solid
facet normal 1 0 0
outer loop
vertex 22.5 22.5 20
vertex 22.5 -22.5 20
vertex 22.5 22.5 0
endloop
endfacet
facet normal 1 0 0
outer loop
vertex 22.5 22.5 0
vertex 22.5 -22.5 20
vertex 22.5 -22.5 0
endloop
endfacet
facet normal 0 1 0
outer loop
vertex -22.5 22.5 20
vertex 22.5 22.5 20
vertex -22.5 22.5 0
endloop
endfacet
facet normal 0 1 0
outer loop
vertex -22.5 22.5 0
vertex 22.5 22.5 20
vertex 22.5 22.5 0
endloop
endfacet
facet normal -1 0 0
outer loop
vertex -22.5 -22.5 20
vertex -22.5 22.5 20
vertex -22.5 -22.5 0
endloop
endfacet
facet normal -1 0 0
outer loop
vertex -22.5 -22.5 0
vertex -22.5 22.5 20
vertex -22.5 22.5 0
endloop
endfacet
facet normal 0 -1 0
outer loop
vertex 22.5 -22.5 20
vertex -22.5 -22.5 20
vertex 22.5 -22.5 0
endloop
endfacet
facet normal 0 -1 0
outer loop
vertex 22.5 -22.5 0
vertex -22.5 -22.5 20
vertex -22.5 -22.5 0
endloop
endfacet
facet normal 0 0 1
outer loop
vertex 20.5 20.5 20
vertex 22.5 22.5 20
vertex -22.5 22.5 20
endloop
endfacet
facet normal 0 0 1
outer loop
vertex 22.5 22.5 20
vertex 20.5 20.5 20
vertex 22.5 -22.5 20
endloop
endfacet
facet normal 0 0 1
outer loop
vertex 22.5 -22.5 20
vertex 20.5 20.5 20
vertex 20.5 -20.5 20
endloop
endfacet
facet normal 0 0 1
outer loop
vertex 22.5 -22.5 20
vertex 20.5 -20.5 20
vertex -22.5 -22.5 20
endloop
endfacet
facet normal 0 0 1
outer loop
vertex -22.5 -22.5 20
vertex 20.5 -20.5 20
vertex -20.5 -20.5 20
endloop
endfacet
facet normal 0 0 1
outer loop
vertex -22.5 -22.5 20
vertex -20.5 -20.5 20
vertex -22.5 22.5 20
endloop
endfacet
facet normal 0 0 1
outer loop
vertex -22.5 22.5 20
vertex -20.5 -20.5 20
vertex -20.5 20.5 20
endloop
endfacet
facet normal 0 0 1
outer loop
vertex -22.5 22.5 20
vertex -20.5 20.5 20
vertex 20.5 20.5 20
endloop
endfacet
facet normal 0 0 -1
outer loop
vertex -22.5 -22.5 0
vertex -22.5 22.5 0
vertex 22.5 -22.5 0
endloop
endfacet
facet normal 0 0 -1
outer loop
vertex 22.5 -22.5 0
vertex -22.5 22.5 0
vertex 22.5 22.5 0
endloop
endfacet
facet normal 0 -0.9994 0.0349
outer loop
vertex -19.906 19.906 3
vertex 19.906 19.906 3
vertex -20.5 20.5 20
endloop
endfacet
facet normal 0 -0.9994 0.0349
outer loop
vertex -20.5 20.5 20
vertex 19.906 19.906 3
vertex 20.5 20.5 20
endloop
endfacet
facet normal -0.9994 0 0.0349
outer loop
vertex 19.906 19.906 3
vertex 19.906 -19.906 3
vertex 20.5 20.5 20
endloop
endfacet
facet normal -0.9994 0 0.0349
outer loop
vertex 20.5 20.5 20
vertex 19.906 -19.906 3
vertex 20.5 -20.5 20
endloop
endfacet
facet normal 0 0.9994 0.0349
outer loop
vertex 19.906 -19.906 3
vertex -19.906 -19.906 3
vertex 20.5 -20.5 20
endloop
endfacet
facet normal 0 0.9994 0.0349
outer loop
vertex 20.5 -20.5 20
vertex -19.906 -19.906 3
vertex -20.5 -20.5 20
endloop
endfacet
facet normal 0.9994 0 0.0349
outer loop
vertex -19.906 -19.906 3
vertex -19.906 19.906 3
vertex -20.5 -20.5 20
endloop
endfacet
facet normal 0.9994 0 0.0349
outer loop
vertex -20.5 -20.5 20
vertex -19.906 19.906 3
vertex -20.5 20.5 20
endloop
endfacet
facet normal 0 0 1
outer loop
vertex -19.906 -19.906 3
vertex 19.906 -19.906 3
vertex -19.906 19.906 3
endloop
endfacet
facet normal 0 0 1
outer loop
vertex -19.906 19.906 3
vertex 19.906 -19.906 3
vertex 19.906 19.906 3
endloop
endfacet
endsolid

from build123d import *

# Parameters (mm, degrees)
SKETCH_1_W          = 45
SKETCH_1_H          = 45
EXTRUDE_1_DEPTH     = 20
SKETCH_2_W          = 41
SKETCH_2_H          = 41
CUT_EXTRUDE_1_DEPTH = 17
CUT_EXTRUDE_1_DRAFT = -2


with BuildPart() as part:
    # Эскиз1 → Бобышка-Вытянуть1 (new body)
    with BuildSketch(Plane.XY):
        Rectangle(SKETCH_1_W, SKETCH_1_H)
    extrude(amount=EXTRUDE_1_DEPTH)


with BuildPart() as cut_extrude_1_tool:
    # Эскиз2 → Вырез-Вытянуть1 (with draft: the straight prism first)
    with BuildSketch(Plane.XY.offset(20)):
        Rectangle(SKETCH_2_W, SKETCH_2_H)
    extrude(amount=-CUT_EXTRUDE_1_DEPTH)
    # Вырез-Вытянуть1: the draft: its side faces are tilted about the plane it starts from
    cut_extrude_1_sides = [cut_extrude_1_tool.faces().sort_by_distance(p)[0] for p in [
        (-20.5, 0, 11.5),
        (0, -20.5, 11.5),
        (20.5, 0, 11.5),
        (0, 20.5, 11.5),
    ]]
    draft(cut_extrude_1_sides, Plane.XY.offset(20), CUT_EXTRUDE_1_DRAFT)


with BuildPart() as part_1:
    add(part.part)

    # Вырез-Вытянуть1: cut by cut_extrude_1_tool
    add(cut_extrude_1_tool.part, mode=Mode.SUBTRACT)


solid = part_1.part
